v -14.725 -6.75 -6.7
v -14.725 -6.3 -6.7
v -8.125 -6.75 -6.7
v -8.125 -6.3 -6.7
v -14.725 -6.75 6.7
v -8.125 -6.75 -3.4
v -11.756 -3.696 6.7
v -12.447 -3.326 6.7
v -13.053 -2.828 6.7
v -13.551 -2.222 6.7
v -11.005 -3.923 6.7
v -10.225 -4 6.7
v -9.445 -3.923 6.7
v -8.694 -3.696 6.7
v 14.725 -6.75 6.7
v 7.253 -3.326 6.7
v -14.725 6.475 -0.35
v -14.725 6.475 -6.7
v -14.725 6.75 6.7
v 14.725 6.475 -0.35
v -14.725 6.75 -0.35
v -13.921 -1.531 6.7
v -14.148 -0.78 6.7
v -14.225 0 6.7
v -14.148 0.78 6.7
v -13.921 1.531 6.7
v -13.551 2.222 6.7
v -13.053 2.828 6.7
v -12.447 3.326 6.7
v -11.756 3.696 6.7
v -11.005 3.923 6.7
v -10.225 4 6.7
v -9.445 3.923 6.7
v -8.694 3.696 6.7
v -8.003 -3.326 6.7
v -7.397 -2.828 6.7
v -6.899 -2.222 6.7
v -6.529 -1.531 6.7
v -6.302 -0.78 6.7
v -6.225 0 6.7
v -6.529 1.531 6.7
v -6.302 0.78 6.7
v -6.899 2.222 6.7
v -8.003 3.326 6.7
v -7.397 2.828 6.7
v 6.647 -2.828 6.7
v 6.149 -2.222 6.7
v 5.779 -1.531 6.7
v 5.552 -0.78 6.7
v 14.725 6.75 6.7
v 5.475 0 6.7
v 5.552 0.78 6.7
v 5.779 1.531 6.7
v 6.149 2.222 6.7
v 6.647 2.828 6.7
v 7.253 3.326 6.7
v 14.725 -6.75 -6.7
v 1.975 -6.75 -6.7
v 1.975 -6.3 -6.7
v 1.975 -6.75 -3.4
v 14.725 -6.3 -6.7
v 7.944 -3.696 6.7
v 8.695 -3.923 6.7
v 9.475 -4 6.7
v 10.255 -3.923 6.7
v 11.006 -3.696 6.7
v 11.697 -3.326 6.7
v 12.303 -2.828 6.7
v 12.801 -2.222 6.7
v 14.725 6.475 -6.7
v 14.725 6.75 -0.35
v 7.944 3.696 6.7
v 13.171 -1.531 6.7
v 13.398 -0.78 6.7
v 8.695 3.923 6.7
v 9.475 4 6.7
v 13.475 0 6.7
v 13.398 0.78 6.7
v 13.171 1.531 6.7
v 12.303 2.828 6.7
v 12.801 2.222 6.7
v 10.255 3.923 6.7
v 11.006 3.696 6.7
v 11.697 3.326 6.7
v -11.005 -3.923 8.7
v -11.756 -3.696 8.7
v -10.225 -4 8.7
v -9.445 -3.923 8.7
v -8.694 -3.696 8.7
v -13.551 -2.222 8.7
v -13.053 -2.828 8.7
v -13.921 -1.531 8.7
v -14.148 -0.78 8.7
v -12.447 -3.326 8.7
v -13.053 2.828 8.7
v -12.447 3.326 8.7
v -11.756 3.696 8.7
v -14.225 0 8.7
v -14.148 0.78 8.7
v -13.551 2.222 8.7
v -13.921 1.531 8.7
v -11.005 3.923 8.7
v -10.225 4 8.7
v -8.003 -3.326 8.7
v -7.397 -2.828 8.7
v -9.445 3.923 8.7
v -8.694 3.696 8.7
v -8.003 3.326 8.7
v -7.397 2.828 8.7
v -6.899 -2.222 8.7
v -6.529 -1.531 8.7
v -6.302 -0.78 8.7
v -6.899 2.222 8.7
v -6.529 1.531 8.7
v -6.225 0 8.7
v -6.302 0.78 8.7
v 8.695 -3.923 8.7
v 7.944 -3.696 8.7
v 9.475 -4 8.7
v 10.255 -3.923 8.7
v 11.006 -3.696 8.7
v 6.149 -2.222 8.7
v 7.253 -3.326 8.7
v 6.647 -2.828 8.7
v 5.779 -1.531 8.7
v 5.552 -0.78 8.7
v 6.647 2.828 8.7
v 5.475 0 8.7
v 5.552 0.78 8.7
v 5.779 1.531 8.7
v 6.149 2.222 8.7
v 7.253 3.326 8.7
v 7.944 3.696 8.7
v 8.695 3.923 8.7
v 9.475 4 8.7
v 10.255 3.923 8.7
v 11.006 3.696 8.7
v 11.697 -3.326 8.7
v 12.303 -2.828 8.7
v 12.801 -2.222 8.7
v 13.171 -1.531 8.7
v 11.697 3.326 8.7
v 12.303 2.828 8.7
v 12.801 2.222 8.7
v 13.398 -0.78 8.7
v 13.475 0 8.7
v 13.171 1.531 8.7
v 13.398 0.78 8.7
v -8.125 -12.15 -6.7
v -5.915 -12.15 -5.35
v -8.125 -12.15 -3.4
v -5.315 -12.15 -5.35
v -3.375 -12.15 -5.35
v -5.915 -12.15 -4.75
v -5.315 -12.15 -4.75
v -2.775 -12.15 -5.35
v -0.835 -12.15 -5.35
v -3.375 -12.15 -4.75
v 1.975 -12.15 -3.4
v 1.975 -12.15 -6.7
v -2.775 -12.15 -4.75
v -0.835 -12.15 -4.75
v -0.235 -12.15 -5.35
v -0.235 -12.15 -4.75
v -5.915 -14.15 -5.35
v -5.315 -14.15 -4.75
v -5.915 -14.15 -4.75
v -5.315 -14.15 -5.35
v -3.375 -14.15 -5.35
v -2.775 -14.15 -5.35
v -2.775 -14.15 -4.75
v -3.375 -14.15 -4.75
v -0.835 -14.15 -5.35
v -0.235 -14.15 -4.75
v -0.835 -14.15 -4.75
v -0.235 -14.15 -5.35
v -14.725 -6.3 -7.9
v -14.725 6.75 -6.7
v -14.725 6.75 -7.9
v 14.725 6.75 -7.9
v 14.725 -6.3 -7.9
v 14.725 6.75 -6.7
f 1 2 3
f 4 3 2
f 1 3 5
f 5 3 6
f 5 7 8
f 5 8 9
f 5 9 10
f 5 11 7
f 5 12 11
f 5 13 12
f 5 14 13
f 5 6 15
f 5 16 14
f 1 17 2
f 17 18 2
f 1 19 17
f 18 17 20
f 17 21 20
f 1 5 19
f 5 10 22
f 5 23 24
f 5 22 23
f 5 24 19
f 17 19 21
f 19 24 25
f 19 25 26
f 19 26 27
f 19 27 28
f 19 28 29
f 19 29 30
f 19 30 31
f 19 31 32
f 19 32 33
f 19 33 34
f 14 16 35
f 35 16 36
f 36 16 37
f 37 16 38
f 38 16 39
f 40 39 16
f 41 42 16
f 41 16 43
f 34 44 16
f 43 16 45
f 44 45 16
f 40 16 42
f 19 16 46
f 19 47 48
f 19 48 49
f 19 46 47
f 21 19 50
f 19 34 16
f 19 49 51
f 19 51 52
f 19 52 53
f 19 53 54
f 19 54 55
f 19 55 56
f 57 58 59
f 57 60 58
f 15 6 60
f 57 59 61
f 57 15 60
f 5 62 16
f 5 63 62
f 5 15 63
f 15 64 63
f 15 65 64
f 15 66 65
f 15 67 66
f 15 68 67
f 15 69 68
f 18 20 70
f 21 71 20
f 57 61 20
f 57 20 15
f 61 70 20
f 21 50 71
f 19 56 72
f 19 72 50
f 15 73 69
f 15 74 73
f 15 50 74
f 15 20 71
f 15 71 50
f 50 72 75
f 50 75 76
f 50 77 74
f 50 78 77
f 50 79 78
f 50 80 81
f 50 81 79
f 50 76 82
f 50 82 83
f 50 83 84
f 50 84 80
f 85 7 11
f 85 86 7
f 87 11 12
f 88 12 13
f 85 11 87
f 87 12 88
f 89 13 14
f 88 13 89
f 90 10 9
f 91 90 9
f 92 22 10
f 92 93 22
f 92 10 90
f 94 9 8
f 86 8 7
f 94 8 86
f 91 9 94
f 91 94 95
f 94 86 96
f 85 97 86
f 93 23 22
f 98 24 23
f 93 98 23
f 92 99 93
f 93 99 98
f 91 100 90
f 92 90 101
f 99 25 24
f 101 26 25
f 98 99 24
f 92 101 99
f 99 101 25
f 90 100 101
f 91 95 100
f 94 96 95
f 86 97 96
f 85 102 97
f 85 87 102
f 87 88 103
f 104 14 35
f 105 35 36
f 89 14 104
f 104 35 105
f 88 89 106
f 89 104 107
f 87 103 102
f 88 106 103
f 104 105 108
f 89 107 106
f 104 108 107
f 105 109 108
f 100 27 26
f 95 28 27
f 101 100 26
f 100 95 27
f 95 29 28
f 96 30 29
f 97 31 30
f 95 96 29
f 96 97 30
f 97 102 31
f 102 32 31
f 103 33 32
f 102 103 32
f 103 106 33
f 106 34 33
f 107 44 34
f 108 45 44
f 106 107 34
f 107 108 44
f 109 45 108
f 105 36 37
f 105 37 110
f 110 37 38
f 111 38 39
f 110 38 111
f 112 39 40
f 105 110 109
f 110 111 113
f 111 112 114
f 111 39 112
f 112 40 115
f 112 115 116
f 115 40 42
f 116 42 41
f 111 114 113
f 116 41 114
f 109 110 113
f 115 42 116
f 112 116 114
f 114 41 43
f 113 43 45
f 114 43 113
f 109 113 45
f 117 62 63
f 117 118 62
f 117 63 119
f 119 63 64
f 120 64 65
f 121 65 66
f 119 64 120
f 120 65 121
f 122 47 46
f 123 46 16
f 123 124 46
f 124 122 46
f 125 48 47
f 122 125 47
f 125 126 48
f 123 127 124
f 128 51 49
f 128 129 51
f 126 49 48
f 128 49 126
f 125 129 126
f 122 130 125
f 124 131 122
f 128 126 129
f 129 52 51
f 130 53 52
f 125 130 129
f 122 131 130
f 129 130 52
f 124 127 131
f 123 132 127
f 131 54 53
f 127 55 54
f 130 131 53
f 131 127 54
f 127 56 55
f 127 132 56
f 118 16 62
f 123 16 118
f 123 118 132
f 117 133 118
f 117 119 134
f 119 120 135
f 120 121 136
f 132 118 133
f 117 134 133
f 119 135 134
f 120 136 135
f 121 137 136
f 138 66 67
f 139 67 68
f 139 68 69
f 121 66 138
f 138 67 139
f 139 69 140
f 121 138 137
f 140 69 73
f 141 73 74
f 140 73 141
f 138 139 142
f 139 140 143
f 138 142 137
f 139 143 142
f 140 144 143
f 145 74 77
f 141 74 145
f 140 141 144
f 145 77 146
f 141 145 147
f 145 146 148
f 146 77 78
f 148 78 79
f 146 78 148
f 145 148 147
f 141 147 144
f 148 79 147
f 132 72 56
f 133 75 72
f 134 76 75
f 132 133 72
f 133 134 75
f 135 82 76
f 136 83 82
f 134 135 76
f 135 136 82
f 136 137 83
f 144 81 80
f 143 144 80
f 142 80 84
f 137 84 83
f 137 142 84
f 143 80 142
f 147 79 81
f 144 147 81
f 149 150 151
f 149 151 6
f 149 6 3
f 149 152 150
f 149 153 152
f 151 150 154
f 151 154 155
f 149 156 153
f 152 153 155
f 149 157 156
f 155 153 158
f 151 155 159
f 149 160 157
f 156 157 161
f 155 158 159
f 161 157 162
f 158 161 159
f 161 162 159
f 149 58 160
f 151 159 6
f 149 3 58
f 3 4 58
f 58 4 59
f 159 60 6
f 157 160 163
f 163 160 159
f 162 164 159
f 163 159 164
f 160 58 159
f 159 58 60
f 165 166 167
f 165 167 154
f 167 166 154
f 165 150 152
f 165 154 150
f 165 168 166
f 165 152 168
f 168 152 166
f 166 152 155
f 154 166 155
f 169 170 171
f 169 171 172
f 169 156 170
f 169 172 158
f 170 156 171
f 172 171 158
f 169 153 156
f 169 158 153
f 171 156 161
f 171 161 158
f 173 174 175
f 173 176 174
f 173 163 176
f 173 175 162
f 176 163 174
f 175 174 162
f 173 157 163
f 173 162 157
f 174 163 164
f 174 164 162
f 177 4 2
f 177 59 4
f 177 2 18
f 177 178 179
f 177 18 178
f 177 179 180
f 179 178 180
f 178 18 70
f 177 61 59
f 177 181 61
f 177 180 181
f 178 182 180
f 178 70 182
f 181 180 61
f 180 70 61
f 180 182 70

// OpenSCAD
/*
    Sharp Distance Sensor GP2Y0D413K0F
    Units: mm
    
    Orientation:
    - Origin: Center of the main plastic body
    - +Z direction: Optical axis (front of the sensor)
    - -Z direction: Mounting surface (PWB/Connector side)
*/

// --- Parameters ---
$fn = 32;

// Body Dimensions (Main Case)
BODY_W = 29.45;
BODY_H = 13.5;
BODY_D = 13.4; // 7.1 (front) + 6.3 (back)

// Lens Parts
LENS_PROTRUSION = 2.0;
LENS_SPACING = 19.7;
LENS_X_OFFSET = 4.5; // From left edge to first lens center
LENS_DIA = 8.0;      // Approximate diameter based on 8.4mm casing

// PWB (Printed Wiring Board)
PWB_THICKNESS = 1.2;
PWB_W = BODY_W;
PWB_H = 13.05; // Based on side view height

// Connector
CONN_W = 10.1;
CONN_TOTAL_H = 18.9; // Total height from top of device
CONN_EXT_H = CONN_TOTAL_H - BODY_H; // Extension below the body
CONN_D = 3.3;        // Reference dimension from side view
CONN_X_POS = (7.5 + 4.15) - (BODY_W / 2); // Center of connector pins relative to body center

module GP2Y0D413K0F() {
    // 1. Main Case (Carbonic ABS - Black)
    color("DimGray") {
        difference() {
            // Main block centered at origin
            cube([BODY_W, BODY_H, BODY_D], center = true);
            
            // Side view shows a step down to 13.05mm at the back section (6.3mm)
            translate([0, (BODY_H/2), -(BODY_D/2) + (6.3/2)])
                cube([BODY_W + 1, BODY_H - 13.05 + 0.1, 6.3 + 0.1], center = true);
        }
    }

    // 2. Lenses (Acrylic Resin - Dark Blue/Clear)
    // Calculating X positions relative to center
    lens1_x = -BODY_W/2 + LENS_X_OFFSET;
    lens2_x = lens1_x + LENS_SPACING;
    
    color("MidnightBlue", 0.8) {
        for(x = [lens1_x, lens2_x]) {
            translate([x, 0, BODY_D/2])
                cylinder(d = LENS_DIA, h = LENS_PROTRUSION);
        }
    }

    // 3. PWB (Paper Phenol - Brownish)
    // Positioned at the back (-Z)
    color("Sienna") {
        translate([0, (BODY_H - PWB_H)/2, -(BODY_D/2) - (PWB_THICKNESS/2)])
            cube([PWB_W, PWB_H, PWB_THICKNESS], center = true);
    }

    // 4. Connector Housing (White/Grey)
    color("Ivory") {
        // Connector sticks out from the bottom (-Y)
        translate([CONN_X_POS, -BODY_H/2 - CONN_EXT_H/2, -(BODY_D/2) + CONN_D/2])
            cube([CONN_W, CONN_EXT_H, CONN_D], center = true);
            
        // Connector base inside the body area
        translate([CONN_X_POS, -BODY_H/2 + 2/2, -(BODY_D/2) + CONN_D/2])
            cube([CONN_W, 2, CONN_D], center = true);
    }
    
    // 5. Metal Pins (Simplified)
    color("Silver") {
        for(i = [-1 : 1]) {
            translate([CONN_X_POS + (i * 2.54), -BODY_H/2 - CONN_EXT_H - 1, -(BODY_D/2) + CONN_D/2])
                cube([0.6, 2, 0.6], center = true);
        }
    }
}

// Render the model
GP2Y0D413K0F();
